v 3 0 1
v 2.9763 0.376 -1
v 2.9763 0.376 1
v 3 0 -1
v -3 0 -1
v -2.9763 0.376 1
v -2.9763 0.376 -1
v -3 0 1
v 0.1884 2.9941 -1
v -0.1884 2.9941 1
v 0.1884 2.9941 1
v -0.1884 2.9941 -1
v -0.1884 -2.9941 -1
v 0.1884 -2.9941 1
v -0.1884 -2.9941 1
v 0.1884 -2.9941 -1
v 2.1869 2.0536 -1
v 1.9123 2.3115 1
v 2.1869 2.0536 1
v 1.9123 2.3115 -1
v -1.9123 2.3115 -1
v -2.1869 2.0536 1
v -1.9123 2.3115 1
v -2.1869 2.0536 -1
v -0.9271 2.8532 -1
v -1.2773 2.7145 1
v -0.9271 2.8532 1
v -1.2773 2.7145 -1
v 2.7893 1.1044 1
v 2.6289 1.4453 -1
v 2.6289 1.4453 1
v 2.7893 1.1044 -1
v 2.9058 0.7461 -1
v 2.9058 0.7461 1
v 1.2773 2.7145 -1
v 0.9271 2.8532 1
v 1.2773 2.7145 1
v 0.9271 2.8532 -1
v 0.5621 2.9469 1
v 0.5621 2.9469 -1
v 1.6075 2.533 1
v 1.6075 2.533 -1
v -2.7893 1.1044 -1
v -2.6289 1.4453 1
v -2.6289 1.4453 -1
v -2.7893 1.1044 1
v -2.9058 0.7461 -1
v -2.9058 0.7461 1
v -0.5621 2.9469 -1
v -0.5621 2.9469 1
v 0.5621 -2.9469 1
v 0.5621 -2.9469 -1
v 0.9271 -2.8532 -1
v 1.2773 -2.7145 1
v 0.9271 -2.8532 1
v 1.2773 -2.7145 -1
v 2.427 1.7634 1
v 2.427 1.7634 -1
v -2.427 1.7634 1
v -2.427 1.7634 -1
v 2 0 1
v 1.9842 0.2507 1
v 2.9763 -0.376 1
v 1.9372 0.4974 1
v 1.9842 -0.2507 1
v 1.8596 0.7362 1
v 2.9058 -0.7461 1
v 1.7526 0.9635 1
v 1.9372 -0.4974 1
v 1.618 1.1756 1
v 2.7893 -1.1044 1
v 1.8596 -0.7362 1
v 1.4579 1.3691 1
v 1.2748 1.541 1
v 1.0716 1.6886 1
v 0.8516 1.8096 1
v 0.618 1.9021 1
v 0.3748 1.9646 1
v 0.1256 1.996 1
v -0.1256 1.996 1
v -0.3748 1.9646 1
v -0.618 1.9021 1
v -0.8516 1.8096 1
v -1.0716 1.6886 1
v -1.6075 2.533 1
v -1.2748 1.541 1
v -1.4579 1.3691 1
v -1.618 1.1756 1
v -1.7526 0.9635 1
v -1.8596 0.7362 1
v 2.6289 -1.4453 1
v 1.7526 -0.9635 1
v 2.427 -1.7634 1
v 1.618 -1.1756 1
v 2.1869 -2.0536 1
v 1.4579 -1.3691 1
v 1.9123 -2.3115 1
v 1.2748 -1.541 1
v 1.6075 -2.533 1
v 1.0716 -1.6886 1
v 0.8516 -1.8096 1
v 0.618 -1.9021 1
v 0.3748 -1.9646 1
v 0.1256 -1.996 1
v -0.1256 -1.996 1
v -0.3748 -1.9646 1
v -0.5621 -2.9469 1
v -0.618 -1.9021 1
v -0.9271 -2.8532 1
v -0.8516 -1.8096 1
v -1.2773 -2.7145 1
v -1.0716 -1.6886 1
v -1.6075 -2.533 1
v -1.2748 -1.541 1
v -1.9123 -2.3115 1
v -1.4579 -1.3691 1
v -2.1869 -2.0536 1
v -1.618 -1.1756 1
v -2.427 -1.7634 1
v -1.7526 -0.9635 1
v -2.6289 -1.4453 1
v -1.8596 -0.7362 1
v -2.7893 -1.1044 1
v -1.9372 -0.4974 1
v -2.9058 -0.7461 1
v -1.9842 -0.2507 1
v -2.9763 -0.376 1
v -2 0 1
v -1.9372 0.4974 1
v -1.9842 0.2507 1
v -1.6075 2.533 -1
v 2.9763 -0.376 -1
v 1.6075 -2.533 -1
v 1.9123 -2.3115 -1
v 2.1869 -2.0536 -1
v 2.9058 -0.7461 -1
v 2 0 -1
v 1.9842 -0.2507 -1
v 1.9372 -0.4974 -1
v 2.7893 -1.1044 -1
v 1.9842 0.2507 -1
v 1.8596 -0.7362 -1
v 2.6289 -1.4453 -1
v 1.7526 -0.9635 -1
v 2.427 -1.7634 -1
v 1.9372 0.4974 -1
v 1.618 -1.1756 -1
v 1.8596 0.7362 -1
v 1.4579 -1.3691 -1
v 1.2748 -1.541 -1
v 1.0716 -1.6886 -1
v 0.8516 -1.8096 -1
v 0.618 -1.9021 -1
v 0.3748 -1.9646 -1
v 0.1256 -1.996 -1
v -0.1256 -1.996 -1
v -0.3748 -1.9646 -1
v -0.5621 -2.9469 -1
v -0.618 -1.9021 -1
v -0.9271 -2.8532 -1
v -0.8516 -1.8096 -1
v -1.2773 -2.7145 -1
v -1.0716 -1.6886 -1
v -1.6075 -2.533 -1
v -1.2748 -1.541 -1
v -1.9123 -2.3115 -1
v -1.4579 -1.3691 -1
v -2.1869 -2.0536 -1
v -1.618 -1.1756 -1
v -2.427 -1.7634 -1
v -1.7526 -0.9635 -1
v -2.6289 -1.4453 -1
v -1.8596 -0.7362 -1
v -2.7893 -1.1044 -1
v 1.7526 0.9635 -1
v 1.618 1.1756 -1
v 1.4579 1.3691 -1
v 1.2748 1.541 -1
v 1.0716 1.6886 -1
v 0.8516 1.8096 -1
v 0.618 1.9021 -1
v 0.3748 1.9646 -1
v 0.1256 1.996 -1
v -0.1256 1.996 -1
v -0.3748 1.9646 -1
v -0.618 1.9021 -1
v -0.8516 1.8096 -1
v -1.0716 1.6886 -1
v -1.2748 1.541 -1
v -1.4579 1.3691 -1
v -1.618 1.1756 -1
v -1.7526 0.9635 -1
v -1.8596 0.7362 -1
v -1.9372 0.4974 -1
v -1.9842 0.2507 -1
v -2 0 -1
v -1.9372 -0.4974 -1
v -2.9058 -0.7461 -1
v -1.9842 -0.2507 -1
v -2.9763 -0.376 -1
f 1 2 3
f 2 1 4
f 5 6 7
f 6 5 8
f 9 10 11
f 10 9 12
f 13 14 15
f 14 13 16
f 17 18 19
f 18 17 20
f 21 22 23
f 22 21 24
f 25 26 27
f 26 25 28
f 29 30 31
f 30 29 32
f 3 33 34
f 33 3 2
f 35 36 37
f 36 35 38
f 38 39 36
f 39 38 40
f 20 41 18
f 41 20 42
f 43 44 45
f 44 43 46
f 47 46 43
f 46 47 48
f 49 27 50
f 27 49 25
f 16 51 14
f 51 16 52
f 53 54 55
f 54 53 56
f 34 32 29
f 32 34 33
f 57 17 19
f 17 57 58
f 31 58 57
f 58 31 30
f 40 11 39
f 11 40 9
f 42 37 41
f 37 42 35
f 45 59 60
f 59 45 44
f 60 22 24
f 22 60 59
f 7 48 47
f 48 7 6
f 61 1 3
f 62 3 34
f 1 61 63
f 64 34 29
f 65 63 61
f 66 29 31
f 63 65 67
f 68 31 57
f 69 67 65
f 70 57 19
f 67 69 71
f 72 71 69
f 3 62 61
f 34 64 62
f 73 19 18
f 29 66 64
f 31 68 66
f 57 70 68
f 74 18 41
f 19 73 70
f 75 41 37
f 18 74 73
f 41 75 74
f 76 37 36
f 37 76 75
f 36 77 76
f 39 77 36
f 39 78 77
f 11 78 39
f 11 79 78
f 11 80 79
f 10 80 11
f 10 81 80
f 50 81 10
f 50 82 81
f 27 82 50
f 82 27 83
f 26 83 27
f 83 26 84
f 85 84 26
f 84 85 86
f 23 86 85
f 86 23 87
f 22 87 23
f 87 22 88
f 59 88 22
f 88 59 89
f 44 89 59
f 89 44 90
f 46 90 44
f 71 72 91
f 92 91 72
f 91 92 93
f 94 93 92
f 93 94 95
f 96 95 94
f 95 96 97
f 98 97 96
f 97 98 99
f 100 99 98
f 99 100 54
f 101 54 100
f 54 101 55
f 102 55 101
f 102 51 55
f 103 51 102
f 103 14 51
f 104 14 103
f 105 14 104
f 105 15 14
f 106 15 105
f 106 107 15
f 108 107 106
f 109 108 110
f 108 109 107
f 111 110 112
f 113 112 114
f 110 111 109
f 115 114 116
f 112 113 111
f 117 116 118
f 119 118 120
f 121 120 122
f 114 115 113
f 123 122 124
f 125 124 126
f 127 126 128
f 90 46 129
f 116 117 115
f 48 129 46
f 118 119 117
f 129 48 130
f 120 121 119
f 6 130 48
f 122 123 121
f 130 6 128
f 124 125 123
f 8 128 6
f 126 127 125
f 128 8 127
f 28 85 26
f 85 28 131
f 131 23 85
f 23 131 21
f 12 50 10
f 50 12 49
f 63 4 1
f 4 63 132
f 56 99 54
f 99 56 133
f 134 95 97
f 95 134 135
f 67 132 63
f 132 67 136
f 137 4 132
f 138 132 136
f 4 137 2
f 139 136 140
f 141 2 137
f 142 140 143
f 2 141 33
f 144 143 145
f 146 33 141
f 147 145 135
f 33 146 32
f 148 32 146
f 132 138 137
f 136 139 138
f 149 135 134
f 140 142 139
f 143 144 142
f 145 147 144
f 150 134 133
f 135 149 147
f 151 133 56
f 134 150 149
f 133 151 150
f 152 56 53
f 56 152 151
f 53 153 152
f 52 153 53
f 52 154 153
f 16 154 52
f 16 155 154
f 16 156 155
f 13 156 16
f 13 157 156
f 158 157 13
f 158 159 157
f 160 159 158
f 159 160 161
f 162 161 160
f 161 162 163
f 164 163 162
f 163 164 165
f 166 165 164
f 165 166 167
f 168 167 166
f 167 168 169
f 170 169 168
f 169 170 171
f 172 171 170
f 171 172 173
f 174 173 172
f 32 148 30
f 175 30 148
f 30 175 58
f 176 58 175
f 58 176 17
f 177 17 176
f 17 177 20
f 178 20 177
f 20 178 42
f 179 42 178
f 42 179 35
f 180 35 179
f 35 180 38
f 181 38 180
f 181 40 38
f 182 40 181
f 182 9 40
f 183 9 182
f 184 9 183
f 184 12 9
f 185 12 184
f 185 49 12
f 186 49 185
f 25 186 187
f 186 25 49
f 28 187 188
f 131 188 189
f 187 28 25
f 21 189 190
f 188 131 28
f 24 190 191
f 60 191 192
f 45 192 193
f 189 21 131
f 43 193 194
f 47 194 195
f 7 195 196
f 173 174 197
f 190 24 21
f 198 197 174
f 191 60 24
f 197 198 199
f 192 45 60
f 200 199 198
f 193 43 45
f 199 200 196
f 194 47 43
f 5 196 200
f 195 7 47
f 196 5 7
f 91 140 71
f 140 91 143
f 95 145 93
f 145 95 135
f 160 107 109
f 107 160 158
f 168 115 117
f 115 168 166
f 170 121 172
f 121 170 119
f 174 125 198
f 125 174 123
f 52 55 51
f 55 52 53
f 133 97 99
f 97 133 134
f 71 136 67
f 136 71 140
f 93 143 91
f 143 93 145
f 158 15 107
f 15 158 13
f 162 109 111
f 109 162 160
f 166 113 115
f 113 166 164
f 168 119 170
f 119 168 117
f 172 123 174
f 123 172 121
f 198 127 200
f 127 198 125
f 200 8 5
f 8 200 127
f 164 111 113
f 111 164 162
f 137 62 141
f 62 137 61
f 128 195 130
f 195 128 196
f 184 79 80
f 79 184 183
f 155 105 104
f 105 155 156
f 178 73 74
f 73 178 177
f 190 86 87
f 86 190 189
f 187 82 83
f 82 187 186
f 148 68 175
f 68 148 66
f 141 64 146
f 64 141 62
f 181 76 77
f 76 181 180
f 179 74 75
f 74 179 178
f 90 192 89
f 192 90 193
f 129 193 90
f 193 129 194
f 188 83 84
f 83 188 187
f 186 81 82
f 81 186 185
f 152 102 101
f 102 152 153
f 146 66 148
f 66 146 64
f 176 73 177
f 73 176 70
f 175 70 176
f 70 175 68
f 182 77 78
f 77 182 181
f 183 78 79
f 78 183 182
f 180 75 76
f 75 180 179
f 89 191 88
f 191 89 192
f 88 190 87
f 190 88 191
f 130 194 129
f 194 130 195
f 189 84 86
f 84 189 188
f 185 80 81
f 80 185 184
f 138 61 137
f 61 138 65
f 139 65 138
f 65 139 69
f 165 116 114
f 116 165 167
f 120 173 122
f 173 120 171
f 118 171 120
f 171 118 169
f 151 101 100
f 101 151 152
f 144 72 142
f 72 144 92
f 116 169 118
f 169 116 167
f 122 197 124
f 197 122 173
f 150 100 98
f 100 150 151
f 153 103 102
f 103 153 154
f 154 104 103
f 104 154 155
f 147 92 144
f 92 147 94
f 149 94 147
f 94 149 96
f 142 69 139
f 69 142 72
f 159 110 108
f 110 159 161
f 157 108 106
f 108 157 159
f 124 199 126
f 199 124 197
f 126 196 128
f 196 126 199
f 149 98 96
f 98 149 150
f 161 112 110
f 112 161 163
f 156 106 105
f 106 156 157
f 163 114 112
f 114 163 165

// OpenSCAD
$fn = 50;


difference() {
	union() {
		translate(v = [0, 0, -1.0000000000]) {
			cylinder(h = 2, r = 3.0000000000);
		}
	}
	union() {
		translate(v = [0, 0, -100.0000000000]) {
			cylinder(h = 200, r = 2);
		}
	}
}
